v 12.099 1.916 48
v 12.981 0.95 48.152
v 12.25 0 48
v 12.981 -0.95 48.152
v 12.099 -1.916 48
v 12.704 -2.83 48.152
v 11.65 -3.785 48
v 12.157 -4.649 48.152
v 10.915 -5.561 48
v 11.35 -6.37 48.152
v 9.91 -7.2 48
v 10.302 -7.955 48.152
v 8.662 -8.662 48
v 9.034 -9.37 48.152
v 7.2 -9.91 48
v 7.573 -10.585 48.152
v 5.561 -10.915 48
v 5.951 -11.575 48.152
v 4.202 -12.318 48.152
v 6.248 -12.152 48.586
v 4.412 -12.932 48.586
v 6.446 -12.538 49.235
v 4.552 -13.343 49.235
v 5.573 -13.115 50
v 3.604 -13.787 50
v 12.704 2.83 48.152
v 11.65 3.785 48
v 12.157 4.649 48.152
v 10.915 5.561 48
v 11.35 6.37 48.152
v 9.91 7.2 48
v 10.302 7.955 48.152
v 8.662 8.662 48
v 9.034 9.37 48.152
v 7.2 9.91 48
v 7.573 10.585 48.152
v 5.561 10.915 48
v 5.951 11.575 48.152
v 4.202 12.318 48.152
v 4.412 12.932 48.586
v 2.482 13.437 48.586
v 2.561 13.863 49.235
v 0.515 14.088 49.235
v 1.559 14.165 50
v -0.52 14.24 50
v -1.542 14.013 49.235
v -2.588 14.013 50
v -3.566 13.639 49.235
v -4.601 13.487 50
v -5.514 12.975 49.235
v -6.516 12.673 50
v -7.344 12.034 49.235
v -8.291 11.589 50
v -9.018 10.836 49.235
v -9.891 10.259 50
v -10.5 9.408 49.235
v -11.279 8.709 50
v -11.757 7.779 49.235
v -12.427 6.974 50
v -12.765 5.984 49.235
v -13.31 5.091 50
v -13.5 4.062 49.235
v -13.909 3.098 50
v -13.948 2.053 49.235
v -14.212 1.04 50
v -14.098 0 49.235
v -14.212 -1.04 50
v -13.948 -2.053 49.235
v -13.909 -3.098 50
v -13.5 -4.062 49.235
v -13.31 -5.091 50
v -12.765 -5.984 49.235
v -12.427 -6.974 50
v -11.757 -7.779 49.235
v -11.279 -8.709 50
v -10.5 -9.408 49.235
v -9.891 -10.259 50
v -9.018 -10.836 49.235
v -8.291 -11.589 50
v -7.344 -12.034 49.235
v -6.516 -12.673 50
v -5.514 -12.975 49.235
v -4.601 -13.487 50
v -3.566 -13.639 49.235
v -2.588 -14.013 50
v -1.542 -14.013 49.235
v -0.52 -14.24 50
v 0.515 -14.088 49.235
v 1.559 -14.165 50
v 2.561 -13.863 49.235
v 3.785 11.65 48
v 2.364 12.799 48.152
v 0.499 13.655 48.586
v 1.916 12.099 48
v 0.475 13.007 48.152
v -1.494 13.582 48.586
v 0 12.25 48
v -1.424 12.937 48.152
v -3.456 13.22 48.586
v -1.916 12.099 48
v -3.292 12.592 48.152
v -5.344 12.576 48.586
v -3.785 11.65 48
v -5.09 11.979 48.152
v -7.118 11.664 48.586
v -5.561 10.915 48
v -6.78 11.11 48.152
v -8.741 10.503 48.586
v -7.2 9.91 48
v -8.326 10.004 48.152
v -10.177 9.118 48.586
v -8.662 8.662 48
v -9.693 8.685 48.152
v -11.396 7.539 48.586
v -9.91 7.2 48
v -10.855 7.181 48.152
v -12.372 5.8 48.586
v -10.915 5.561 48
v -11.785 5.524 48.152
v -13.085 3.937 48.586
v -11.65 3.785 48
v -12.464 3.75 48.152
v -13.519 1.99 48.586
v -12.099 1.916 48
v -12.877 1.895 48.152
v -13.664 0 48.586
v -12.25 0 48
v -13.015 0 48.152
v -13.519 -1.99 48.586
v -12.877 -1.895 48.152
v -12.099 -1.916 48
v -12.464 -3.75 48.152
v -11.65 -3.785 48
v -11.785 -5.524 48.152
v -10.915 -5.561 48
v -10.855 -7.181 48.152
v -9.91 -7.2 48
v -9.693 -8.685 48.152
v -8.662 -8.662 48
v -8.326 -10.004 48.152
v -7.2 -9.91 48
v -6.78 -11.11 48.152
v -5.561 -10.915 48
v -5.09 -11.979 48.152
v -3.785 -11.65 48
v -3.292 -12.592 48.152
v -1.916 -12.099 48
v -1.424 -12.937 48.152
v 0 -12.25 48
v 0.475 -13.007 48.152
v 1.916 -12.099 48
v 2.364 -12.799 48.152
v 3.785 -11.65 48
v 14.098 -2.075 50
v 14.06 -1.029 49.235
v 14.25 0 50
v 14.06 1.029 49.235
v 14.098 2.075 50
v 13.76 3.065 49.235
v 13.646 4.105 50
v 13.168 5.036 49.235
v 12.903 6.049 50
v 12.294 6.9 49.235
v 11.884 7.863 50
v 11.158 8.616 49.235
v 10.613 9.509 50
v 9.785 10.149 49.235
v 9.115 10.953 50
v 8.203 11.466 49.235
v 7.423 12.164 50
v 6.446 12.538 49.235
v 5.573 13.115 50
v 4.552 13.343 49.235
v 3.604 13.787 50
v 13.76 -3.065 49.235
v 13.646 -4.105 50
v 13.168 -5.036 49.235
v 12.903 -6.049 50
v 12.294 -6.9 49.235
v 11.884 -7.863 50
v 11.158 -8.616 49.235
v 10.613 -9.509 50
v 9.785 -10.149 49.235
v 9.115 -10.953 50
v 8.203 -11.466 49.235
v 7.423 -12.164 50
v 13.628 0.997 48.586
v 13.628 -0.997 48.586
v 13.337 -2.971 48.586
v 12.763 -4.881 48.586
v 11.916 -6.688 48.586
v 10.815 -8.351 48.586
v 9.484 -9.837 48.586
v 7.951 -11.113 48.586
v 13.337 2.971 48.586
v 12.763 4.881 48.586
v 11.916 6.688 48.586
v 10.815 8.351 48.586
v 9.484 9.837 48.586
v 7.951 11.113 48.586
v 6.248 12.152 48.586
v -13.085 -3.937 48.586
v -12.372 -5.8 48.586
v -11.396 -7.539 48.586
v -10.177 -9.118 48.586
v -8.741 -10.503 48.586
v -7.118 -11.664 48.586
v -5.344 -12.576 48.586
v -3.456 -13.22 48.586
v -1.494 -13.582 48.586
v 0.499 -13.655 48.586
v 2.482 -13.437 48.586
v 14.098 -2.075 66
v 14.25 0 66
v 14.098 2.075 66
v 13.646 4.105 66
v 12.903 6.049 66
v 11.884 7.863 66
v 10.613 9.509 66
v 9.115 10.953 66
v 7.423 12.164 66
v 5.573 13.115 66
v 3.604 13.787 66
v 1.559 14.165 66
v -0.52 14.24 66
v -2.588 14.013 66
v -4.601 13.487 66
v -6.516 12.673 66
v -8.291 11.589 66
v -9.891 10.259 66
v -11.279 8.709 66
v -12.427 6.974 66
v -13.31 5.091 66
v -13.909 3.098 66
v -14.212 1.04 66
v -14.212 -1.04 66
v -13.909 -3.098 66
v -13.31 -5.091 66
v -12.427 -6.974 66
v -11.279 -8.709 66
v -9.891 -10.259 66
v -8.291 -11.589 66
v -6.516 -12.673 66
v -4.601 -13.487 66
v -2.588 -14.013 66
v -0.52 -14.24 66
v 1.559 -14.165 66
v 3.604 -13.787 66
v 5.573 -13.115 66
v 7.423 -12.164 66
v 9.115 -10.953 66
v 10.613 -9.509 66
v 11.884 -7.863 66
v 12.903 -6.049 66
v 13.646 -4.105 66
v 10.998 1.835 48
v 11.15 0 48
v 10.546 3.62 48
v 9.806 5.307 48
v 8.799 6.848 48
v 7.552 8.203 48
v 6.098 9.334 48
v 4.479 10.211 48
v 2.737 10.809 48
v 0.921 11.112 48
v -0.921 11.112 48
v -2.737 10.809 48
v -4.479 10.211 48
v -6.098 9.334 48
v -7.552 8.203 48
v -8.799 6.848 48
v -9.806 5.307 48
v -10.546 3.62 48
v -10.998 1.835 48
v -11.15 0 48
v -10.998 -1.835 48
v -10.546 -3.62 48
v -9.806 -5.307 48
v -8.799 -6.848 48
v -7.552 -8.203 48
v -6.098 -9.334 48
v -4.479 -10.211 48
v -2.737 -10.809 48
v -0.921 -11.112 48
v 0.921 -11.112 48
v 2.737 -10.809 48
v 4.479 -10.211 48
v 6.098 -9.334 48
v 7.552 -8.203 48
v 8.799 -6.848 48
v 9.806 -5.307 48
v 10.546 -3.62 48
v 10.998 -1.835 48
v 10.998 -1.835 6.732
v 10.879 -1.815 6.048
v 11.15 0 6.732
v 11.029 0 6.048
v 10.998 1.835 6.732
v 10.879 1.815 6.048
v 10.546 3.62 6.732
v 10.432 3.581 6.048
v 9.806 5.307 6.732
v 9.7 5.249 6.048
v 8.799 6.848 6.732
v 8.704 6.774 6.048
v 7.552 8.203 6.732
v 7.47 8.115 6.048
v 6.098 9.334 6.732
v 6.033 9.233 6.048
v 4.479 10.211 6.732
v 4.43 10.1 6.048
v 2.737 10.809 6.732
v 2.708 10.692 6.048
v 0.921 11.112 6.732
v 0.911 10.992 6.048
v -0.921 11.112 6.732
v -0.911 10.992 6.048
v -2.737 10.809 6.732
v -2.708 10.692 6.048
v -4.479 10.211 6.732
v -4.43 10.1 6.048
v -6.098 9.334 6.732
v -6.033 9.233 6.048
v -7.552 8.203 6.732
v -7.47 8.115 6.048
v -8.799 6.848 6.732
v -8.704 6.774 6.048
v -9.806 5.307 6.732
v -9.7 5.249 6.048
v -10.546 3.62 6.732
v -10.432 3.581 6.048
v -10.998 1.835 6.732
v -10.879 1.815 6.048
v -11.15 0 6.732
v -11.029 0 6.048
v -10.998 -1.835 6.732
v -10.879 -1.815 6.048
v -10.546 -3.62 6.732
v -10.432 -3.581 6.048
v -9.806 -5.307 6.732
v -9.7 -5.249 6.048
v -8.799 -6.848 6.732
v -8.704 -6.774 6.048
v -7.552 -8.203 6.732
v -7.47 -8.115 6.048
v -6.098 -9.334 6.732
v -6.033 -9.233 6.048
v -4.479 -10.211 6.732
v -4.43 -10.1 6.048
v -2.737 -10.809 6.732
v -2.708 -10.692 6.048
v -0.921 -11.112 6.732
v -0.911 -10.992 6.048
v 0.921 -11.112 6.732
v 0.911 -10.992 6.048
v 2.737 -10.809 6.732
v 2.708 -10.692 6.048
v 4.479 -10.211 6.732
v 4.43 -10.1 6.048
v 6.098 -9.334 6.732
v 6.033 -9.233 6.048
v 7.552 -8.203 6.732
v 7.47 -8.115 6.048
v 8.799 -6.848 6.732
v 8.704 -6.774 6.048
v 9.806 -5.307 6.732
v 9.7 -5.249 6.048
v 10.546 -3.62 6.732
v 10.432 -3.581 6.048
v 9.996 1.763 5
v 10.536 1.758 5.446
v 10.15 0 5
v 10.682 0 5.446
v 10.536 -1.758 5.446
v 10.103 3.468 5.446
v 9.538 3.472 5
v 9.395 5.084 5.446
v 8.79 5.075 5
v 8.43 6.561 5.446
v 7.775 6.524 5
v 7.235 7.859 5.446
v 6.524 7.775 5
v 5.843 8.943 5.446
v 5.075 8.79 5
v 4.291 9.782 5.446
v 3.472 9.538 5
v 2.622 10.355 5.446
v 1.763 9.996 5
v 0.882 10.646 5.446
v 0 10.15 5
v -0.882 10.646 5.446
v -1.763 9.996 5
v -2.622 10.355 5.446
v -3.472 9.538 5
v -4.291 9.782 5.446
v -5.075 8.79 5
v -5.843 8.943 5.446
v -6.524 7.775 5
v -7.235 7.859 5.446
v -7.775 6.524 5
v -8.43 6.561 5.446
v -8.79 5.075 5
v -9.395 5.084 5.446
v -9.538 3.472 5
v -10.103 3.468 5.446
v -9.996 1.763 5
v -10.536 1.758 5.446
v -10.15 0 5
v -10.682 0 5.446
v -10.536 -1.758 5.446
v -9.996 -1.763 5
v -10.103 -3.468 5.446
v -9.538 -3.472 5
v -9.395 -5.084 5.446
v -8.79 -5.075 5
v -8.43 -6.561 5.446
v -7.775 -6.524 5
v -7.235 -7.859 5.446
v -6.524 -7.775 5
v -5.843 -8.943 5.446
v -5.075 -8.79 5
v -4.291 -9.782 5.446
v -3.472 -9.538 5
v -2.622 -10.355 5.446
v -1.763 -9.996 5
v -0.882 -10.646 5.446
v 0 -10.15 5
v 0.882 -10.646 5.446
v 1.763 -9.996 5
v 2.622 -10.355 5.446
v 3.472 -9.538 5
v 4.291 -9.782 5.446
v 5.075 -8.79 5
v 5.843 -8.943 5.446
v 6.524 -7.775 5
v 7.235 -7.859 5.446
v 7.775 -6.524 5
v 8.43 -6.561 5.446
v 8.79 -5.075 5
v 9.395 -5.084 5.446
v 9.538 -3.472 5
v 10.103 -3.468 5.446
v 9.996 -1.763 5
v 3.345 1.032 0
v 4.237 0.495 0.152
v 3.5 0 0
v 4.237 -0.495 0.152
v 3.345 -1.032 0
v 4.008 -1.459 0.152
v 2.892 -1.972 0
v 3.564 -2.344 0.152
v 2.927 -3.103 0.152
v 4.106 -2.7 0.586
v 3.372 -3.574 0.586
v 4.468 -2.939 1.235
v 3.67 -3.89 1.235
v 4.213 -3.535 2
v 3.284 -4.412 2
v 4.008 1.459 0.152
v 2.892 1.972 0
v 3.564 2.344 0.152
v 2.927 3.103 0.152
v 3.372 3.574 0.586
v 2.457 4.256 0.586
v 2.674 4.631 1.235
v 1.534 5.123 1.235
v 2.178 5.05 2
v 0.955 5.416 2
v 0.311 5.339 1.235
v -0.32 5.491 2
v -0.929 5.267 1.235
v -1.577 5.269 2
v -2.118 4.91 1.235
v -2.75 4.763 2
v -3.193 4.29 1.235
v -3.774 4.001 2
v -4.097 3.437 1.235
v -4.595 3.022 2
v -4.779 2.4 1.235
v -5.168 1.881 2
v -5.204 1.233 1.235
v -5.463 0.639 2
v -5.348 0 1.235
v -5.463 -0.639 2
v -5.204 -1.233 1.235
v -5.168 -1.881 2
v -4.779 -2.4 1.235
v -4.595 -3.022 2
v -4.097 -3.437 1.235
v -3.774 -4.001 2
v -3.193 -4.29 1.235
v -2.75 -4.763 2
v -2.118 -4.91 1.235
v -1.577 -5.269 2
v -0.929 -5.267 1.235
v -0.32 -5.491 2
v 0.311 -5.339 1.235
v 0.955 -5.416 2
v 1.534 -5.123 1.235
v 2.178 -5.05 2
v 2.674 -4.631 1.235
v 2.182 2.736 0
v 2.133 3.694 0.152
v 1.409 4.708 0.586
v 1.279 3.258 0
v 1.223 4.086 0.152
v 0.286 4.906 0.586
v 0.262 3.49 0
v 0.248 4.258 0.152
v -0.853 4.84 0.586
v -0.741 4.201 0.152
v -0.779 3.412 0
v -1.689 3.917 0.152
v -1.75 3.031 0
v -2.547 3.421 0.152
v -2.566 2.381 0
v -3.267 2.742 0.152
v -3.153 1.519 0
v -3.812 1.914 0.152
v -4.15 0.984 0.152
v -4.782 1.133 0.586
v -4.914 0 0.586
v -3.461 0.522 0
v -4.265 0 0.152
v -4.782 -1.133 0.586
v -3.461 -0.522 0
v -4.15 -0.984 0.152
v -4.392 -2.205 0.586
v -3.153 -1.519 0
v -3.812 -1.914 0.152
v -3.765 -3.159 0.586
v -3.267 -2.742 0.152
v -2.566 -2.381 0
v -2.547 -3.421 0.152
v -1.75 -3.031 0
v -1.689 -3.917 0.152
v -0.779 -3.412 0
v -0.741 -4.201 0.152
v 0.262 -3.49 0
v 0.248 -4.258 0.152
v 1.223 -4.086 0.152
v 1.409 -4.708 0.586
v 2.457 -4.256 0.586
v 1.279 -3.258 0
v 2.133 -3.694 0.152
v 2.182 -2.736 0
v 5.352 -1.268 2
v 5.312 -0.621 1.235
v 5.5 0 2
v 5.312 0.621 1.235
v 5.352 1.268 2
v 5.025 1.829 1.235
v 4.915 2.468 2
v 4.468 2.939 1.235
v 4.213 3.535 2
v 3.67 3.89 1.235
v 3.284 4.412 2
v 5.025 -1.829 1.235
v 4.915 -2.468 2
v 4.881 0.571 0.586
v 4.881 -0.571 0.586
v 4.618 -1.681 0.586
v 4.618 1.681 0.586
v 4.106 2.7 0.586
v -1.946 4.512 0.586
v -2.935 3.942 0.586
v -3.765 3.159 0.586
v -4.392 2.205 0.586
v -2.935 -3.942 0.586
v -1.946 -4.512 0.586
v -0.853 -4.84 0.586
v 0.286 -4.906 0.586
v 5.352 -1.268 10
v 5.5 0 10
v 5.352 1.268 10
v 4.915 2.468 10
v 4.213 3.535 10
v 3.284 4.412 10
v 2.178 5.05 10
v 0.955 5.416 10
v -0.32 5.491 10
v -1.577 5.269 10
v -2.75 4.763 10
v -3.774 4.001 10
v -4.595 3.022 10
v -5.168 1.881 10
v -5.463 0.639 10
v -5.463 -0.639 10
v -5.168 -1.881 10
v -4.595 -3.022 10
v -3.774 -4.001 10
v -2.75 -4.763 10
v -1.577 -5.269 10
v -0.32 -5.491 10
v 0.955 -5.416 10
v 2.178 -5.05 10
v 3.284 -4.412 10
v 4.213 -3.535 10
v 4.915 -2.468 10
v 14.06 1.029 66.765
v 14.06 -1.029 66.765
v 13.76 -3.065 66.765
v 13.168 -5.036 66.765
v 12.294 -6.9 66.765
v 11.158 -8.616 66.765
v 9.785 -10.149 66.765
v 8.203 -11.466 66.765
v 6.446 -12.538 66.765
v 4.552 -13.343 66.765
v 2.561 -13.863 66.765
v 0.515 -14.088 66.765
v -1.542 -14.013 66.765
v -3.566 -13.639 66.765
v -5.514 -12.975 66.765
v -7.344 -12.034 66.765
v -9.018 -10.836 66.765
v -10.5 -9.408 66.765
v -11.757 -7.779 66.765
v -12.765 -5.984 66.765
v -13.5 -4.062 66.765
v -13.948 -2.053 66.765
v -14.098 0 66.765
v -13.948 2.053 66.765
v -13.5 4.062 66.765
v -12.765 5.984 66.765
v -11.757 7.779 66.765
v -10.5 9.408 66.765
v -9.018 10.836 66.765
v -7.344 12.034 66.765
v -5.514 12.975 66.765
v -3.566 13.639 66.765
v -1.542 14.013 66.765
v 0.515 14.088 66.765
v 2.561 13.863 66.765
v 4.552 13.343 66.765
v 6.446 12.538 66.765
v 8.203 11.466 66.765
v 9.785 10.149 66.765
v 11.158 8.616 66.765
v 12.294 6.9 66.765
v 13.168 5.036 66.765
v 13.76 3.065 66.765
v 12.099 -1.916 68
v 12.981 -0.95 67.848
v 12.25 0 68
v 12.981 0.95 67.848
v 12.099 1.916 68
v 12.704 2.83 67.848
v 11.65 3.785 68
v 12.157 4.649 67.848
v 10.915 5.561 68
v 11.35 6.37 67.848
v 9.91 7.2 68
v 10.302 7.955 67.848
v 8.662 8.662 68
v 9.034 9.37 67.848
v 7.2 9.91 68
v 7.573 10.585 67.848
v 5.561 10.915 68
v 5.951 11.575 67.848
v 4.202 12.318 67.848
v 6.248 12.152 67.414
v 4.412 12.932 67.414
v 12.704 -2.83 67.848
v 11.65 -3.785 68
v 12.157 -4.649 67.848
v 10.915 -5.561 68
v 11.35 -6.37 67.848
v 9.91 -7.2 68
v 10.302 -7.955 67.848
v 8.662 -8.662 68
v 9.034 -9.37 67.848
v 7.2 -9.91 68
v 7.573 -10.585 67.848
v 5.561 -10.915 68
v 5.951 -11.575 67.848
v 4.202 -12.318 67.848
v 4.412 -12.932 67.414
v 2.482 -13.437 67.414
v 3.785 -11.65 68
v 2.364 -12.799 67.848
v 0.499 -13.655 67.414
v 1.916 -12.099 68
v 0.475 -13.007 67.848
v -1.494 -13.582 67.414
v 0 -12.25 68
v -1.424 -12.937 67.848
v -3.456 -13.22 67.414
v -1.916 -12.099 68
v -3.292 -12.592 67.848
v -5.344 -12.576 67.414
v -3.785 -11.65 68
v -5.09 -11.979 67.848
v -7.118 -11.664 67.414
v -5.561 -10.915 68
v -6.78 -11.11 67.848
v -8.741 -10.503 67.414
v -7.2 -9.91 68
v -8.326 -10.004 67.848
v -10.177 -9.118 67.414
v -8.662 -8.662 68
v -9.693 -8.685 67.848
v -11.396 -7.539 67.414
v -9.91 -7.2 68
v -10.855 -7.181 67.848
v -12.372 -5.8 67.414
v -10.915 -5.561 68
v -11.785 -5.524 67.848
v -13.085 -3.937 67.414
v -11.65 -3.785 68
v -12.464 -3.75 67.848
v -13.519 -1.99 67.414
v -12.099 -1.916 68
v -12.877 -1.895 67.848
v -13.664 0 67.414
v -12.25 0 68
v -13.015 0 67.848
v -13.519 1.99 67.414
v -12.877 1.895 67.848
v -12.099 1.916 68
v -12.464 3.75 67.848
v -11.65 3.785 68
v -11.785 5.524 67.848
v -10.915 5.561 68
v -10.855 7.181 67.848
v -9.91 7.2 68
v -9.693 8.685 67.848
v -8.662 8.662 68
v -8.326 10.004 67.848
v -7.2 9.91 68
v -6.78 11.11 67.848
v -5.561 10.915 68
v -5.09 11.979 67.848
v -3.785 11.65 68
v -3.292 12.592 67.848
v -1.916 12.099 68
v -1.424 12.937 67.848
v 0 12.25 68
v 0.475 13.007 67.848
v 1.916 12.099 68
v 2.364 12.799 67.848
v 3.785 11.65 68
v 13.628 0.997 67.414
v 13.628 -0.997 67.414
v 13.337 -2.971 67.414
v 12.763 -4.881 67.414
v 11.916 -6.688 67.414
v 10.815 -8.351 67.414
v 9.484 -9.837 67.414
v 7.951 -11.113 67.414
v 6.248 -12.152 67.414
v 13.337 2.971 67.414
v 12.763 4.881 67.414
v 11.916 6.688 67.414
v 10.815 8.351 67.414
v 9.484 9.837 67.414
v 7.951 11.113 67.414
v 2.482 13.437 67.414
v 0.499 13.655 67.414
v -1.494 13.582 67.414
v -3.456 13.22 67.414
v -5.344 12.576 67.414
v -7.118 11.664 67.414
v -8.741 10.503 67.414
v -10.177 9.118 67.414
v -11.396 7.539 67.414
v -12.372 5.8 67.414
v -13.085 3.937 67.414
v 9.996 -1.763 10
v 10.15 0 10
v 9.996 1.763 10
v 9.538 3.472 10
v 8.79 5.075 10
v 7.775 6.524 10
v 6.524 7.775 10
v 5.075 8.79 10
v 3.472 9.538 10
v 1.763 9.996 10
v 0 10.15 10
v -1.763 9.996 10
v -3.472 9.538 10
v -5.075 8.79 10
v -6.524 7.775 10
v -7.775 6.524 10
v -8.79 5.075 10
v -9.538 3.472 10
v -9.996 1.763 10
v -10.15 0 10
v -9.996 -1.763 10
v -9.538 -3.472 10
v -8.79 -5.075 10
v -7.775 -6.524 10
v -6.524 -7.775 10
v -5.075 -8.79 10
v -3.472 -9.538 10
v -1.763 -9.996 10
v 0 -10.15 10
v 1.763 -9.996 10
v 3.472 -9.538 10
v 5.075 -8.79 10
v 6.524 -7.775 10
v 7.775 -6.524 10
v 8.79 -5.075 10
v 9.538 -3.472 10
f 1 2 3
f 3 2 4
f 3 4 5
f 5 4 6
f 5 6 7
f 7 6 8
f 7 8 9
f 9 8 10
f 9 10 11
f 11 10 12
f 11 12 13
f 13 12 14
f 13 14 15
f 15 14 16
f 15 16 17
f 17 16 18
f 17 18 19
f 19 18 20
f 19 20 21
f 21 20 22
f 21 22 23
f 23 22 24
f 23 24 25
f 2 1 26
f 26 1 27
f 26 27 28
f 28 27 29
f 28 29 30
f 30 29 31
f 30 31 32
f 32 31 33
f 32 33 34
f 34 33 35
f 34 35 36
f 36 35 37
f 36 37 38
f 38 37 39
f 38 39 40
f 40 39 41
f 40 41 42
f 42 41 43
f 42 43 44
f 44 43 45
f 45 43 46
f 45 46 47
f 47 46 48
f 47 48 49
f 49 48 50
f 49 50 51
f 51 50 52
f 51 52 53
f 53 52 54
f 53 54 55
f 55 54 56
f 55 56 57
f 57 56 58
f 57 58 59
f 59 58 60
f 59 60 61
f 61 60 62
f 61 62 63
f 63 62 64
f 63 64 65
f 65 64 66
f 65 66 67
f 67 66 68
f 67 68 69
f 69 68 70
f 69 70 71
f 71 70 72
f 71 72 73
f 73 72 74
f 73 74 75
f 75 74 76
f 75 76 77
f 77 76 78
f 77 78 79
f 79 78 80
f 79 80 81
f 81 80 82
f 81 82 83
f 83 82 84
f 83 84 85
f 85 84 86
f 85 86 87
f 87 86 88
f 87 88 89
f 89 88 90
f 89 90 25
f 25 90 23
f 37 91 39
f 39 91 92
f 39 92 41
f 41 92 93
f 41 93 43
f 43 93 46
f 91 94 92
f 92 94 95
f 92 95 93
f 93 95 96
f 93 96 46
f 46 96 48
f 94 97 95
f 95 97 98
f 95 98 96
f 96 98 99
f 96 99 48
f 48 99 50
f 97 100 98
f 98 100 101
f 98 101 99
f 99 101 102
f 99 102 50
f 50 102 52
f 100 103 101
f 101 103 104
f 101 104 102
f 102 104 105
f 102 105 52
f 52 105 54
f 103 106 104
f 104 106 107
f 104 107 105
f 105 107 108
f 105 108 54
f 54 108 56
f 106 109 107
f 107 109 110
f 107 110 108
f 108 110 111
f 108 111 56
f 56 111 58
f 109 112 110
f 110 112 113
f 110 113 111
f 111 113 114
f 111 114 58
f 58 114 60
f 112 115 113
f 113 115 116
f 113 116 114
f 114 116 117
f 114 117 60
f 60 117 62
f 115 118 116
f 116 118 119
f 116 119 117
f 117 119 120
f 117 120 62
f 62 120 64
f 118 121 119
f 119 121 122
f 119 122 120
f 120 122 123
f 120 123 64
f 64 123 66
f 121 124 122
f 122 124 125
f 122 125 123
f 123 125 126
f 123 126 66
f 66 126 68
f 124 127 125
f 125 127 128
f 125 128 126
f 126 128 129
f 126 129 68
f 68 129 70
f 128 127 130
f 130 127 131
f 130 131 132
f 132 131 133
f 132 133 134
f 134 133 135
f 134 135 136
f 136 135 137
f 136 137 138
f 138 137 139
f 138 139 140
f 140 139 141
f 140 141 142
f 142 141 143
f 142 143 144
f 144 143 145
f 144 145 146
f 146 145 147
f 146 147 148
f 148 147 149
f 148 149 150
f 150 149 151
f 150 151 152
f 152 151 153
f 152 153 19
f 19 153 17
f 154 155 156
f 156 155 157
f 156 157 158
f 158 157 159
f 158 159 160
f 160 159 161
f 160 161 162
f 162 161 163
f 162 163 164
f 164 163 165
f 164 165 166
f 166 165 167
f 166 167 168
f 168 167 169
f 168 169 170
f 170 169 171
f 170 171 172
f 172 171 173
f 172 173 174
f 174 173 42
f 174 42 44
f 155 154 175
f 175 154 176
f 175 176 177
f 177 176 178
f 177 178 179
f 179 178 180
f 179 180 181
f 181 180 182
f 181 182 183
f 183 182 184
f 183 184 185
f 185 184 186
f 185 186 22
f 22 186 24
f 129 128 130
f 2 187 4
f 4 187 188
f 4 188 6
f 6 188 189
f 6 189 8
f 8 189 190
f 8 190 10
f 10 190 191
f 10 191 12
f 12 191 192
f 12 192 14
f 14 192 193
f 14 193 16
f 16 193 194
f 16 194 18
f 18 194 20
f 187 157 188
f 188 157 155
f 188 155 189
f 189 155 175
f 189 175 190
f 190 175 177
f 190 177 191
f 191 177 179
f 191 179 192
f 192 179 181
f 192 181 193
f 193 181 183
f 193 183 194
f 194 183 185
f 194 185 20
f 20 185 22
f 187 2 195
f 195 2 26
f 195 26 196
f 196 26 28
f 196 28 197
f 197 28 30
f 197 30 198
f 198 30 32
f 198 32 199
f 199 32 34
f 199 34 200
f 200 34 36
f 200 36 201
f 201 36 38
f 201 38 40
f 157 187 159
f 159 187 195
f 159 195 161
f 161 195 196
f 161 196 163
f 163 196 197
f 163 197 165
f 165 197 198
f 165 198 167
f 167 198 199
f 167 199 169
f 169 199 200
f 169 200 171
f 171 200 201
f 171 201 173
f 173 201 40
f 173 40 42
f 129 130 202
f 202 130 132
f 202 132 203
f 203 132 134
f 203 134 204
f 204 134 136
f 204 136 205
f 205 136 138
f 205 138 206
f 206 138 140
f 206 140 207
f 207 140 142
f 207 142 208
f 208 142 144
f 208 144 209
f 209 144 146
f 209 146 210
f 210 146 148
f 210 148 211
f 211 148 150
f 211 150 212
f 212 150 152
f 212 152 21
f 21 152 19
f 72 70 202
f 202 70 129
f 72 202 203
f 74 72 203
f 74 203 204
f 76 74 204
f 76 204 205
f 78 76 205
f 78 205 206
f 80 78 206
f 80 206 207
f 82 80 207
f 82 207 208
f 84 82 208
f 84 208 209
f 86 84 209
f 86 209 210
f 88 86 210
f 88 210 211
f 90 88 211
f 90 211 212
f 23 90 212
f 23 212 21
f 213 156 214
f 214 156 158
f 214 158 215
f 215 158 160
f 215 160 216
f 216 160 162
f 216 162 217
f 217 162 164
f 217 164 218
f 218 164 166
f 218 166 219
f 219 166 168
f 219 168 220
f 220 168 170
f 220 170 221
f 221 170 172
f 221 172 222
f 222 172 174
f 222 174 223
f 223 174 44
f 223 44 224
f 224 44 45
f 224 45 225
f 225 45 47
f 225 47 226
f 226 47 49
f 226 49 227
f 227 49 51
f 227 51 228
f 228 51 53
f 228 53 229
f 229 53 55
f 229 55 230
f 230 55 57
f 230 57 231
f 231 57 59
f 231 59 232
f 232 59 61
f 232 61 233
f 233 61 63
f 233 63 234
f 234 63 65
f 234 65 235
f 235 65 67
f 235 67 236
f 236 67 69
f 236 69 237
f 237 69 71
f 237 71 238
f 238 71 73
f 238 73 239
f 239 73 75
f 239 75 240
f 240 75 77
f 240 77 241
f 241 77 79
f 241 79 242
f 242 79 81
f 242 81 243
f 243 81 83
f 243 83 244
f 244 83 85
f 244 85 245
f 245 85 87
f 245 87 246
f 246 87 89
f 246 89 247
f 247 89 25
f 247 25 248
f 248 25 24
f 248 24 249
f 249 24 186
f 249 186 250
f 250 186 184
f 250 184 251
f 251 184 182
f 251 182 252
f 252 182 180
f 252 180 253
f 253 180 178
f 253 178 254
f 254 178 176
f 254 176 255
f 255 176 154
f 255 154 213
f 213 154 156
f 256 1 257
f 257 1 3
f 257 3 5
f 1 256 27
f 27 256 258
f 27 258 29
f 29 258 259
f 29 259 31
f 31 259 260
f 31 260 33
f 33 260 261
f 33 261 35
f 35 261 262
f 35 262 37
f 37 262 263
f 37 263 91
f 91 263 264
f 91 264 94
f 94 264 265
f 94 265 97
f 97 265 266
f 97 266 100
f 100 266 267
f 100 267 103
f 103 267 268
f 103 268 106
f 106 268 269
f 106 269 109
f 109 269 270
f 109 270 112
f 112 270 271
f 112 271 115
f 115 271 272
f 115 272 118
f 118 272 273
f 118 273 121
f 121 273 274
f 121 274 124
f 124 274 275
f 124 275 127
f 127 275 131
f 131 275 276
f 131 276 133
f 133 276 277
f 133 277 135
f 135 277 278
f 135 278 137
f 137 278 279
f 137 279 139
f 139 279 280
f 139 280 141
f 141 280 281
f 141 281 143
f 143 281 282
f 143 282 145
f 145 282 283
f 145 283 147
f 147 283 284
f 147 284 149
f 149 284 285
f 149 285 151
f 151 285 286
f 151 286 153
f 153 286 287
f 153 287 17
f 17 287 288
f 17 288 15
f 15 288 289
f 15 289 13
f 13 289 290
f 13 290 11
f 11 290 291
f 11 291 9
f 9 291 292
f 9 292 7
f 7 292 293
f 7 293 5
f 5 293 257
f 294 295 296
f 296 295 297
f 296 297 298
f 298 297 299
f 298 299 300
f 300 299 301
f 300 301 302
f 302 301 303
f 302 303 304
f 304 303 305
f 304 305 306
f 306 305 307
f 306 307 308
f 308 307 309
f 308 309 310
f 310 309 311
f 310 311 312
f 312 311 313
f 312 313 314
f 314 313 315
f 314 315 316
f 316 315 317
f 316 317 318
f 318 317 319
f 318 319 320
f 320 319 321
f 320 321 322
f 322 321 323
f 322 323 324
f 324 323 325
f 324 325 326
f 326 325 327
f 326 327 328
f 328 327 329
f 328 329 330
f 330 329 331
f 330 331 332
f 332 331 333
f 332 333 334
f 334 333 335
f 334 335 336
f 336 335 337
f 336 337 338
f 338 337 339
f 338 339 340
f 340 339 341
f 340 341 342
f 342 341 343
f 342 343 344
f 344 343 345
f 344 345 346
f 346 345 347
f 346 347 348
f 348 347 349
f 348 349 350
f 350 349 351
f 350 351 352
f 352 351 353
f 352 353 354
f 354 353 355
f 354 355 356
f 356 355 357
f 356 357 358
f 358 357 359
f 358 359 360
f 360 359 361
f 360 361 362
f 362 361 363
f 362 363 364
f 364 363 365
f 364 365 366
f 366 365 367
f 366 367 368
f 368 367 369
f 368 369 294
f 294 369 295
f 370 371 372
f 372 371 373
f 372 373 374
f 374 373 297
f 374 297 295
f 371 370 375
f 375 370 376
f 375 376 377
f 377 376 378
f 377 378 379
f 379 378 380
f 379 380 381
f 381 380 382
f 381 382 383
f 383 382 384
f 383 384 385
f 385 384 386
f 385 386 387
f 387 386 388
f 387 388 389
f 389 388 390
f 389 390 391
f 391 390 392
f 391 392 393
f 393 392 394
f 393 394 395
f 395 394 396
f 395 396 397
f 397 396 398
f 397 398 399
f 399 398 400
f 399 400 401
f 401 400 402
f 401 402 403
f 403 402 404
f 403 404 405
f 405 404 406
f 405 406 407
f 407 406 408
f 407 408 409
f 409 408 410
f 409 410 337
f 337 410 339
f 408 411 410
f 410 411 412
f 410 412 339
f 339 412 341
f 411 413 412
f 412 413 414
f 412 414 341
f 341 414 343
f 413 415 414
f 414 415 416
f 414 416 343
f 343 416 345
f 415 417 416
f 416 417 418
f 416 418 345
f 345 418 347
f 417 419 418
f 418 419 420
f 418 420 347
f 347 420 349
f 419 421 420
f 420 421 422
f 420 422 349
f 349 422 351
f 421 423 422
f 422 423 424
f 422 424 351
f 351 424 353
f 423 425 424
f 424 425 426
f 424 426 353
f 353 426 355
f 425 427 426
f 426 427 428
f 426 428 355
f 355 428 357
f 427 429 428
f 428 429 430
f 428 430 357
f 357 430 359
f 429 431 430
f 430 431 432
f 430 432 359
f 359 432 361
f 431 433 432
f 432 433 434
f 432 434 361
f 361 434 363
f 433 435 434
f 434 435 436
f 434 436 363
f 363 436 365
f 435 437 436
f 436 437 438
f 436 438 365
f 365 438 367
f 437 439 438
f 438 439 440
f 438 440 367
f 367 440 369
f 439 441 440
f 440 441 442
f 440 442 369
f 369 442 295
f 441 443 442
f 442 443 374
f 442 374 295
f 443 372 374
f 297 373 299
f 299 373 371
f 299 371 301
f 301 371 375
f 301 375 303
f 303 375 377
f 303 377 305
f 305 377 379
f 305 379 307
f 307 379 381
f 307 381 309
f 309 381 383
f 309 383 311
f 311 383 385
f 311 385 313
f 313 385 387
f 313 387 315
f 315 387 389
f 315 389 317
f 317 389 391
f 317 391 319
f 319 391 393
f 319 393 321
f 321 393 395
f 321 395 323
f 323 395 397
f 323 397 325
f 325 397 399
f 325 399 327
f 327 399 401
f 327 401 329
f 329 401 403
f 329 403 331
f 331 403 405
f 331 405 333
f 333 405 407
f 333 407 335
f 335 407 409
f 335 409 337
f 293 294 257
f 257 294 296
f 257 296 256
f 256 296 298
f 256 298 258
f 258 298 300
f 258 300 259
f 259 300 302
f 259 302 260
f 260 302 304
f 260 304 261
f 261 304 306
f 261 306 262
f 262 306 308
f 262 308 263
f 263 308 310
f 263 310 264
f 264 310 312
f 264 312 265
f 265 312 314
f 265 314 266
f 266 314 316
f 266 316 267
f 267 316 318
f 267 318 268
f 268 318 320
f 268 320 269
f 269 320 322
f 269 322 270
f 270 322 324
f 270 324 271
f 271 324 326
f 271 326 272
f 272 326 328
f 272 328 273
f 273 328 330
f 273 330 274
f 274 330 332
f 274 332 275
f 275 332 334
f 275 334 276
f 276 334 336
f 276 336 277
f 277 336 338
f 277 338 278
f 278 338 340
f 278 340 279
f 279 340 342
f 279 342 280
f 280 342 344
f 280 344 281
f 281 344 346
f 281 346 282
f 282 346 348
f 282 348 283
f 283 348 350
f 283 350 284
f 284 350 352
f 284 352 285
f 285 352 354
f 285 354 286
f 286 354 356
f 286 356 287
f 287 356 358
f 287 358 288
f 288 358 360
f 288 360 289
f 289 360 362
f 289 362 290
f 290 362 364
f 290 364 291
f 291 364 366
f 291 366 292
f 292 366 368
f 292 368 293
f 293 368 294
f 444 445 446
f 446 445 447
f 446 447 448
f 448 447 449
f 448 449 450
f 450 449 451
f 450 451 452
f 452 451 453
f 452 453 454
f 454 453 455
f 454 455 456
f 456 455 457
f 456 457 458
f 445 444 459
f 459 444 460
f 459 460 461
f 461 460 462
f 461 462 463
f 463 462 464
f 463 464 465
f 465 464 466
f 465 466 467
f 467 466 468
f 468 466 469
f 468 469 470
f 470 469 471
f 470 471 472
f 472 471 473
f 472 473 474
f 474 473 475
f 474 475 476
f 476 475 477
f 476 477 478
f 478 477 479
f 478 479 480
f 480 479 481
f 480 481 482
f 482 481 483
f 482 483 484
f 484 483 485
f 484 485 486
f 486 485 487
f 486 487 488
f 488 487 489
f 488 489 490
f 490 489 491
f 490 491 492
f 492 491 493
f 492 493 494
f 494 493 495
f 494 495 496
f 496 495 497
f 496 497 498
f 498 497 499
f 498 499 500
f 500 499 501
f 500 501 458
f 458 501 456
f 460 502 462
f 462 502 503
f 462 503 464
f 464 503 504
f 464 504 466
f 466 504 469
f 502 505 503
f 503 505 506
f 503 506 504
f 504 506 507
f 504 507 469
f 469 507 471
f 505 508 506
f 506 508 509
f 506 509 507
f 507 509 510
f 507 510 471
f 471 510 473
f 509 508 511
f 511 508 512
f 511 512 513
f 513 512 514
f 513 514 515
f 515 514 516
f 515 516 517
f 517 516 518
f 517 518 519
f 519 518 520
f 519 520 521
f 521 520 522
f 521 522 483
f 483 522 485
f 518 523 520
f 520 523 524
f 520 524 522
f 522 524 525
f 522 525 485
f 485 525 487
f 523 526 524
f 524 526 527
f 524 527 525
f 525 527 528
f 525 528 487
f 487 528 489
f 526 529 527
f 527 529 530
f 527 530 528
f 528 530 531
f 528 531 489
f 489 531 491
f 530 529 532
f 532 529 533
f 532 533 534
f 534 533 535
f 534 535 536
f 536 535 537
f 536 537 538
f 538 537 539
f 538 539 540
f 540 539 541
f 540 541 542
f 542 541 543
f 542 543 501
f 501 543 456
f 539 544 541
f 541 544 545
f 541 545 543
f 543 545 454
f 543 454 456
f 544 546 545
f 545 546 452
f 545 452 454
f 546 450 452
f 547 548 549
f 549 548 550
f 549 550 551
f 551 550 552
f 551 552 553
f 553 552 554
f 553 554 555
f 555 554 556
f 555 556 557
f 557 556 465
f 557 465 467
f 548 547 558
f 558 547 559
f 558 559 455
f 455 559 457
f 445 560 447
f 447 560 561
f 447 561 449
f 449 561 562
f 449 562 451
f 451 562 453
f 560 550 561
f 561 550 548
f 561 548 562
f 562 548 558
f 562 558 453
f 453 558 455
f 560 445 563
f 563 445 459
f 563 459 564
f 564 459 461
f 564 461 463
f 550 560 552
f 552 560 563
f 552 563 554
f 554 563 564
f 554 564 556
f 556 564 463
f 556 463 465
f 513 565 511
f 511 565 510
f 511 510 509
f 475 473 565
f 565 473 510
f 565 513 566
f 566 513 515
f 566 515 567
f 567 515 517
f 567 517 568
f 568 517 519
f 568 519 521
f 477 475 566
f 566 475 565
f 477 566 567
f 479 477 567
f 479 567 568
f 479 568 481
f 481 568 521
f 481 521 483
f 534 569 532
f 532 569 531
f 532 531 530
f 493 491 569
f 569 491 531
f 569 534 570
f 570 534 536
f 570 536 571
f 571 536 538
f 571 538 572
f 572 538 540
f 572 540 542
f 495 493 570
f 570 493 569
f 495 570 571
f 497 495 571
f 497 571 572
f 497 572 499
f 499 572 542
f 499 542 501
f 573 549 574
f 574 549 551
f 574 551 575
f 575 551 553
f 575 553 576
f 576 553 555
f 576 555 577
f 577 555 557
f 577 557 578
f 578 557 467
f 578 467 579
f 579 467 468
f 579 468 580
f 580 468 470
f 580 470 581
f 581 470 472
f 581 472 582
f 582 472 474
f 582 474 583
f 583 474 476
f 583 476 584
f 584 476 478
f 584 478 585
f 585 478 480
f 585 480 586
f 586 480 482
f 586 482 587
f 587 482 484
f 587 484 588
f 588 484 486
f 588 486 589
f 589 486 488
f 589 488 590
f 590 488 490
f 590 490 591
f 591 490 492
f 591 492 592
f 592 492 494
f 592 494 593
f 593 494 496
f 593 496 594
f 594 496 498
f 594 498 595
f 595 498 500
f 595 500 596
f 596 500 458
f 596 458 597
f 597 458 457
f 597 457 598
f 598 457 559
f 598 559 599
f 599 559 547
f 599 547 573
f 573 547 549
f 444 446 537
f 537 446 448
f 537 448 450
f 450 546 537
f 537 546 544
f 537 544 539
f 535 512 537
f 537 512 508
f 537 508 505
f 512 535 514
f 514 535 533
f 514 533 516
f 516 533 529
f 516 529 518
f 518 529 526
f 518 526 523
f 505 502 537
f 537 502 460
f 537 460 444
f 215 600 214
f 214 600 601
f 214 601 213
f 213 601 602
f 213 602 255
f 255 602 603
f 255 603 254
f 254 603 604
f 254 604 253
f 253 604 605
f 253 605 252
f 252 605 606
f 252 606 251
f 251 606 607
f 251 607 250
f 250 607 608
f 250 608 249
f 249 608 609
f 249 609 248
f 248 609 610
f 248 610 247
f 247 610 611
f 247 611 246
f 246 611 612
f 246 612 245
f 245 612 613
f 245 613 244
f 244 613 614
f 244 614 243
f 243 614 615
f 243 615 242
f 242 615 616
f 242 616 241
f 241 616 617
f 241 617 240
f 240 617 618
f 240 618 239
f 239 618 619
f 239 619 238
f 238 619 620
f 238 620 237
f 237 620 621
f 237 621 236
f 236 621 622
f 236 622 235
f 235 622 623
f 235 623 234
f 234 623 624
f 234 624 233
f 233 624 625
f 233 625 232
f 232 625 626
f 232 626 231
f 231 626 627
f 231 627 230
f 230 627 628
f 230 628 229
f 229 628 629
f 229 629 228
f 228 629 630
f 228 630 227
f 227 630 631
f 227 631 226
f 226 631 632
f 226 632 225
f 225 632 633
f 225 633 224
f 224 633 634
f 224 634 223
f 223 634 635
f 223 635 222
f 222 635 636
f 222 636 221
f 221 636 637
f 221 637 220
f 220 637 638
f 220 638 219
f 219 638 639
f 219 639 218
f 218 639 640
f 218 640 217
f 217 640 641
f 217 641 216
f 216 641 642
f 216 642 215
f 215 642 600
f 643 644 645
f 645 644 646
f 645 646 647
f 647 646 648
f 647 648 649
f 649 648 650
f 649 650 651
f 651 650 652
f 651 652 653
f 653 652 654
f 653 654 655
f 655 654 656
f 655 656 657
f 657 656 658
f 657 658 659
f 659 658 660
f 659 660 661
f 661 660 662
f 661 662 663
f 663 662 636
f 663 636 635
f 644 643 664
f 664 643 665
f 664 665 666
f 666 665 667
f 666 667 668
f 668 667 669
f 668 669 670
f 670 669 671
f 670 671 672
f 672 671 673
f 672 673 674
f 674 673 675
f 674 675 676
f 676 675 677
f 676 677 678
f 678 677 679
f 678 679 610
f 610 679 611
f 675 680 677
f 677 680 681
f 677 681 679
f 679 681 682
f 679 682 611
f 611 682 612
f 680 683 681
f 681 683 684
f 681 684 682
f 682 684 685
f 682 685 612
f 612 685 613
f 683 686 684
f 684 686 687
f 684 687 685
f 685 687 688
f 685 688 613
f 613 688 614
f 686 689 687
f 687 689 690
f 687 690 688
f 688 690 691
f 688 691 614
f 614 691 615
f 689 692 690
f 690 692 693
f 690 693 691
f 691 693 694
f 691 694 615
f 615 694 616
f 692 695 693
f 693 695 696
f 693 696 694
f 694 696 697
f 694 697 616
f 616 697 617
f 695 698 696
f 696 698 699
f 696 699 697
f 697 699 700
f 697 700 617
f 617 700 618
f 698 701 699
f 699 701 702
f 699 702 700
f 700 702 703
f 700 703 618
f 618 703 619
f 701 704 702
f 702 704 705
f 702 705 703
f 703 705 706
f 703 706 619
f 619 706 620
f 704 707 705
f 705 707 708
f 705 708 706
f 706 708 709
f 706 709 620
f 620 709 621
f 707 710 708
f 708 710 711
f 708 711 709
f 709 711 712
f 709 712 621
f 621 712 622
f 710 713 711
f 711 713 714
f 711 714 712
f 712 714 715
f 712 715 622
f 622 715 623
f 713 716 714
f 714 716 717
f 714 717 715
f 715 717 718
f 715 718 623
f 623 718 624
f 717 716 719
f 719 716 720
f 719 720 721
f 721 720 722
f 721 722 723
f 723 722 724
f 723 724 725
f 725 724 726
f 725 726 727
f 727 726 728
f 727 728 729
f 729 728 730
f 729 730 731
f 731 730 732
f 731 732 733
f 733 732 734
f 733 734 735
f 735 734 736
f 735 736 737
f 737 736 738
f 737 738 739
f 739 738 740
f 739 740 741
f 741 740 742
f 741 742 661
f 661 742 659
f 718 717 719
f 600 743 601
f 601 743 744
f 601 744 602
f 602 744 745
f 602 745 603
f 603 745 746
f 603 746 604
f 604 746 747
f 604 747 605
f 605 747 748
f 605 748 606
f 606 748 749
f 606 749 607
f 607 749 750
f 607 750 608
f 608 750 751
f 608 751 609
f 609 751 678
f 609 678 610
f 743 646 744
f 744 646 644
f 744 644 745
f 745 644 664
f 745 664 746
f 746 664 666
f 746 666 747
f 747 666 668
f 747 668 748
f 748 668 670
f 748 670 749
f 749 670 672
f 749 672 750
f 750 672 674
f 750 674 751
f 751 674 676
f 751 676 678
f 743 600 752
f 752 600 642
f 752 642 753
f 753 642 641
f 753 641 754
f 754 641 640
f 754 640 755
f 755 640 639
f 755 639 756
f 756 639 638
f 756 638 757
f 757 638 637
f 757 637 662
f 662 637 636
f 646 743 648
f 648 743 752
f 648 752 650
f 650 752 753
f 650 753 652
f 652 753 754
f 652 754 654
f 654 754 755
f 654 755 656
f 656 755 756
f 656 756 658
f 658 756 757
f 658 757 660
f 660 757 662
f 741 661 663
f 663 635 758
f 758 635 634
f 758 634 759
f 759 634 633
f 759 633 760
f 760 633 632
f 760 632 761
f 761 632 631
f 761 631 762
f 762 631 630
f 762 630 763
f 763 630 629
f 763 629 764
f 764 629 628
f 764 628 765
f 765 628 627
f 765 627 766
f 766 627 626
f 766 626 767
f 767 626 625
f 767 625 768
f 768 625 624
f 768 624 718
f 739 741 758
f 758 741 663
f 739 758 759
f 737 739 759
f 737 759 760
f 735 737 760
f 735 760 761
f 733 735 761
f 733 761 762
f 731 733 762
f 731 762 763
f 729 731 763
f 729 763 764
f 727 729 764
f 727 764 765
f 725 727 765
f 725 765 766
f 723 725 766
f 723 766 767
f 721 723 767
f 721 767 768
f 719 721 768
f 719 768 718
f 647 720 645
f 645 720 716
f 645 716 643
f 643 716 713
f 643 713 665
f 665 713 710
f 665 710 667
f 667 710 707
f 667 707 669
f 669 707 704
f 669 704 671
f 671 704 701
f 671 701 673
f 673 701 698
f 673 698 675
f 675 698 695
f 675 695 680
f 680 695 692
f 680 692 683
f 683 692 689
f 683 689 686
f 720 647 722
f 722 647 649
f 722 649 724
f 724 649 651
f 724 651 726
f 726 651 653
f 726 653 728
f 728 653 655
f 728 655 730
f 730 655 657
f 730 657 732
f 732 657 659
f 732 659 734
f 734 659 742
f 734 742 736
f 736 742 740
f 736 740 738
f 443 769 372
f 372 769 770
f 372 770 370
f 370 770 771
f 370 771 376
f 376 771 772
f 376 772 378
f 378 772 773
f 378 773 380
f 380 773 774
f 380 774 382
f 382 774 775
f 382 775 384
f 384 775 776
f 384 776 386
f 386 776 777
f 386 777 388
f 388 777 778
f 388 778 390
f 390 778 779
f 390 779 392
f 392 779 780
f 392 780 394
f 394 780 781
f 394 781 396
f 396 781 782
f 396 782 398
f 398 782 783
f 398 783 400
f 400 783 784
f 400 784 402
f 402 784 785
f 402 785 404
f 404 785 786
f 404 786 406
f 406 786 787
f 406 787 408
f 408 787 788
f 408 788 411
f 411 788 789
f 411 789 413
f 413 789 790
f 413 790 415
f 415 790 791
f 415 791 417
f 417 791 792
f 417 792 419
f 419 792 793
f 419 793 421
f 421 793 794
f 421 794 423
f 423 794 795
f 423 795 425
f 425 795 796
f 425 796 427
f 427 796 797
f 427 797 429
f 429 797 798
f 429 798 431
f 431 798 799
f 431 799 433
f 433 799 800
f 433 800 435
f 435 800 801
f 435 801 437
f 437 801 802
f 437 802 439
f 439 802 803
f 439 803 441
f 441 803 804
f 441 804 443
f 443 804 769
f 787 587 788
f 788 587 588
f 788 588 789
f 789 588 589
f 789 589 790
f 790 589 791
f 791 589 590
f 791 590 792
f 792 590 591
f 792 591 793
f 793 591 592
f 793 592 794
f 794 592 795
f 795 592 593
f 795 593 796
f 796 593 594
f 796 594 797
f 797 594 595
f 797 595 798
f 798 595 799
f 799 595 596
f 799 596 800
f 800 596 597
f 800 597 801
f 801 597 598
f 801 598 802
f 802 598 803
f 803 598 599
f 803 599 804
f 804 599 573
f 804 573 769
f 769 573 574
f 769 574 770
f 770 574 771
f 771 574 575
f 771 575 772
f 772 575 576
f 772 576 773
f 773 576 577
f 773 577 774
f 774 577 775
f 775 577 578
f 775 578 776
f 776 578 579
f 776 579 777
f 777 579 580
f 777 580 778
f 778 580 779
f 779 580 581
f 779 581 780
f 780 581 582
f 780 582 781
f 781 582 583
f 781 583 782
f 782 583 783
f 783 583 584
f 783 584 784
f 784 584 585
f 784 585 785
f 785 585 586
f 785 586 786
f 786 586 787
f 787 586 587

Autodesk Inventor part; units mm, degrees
ref_plane "YZ Plane" through (0, 0, 0) normal (1, 0, 0) x (0, 1, 0)
ref_plane "XZ Plane" through (0, 0, 0) normal (0, 1, 0) x (-1, 0, 0)
ref_plane "XY Plane" through (0, 0, 0) normal (0, 0, 1) x (1, 0, 0)
sketch "Sketch1" plane through (0, 0, 0) normal (0, 0, 1) x (1, 0, 0)
  circle A0 centre (0, 0) radius 5.5
  dimension "d0" = 11
extrude "Extrusion1" add sketch "Sketch1" along normal blind 10
sketch "Sketch2" plane through (0, 0, 10) normal (0, 0, 1) x (1, 0, 0)
  circle A0 centre (0, 0) radius 11.15
  dimension "d3" = 22.3
extrude "Extrusion3" add sketch "Sketch2" along normal blind 38
sketch "Sketch3" plane through (0, 0, 10) normal (0, 0, -1) x (-1, 0, 0)
  circle A0 centre (0, 0) radius 10.15
  circle A1 centre (0, 0) radius 11.15
  dimension "d8" = 20.3
  dimension "d9" = 22.3
extrude "Extrusion4" add sketch "Sketch3" along normal blind 5
sketch "Sketch4" plane through (0, 0, 48) normal (0, 0, 1) x (1, 0, 0)
  circle A0 centre (0, 0) radius 14.25
  dimension "d12" = 28.5
extrude "Extrusion5" add sketch "Sketch4" along normal blind 20
fillet "Fillet1" radius 2 1 edges at (-14.25, 0, 68)
fillet "Fillet2" radius 2 1 edges at (-5.5, 0, 0)
fillet "Fillet3" radius 2 1 edges at (11.15, 0, 5)
fillet "Fillet4" radius 2 1 edges at (-14.25, 0, 48)
properties part number "Elbow_Parallel_Rod_V1"
